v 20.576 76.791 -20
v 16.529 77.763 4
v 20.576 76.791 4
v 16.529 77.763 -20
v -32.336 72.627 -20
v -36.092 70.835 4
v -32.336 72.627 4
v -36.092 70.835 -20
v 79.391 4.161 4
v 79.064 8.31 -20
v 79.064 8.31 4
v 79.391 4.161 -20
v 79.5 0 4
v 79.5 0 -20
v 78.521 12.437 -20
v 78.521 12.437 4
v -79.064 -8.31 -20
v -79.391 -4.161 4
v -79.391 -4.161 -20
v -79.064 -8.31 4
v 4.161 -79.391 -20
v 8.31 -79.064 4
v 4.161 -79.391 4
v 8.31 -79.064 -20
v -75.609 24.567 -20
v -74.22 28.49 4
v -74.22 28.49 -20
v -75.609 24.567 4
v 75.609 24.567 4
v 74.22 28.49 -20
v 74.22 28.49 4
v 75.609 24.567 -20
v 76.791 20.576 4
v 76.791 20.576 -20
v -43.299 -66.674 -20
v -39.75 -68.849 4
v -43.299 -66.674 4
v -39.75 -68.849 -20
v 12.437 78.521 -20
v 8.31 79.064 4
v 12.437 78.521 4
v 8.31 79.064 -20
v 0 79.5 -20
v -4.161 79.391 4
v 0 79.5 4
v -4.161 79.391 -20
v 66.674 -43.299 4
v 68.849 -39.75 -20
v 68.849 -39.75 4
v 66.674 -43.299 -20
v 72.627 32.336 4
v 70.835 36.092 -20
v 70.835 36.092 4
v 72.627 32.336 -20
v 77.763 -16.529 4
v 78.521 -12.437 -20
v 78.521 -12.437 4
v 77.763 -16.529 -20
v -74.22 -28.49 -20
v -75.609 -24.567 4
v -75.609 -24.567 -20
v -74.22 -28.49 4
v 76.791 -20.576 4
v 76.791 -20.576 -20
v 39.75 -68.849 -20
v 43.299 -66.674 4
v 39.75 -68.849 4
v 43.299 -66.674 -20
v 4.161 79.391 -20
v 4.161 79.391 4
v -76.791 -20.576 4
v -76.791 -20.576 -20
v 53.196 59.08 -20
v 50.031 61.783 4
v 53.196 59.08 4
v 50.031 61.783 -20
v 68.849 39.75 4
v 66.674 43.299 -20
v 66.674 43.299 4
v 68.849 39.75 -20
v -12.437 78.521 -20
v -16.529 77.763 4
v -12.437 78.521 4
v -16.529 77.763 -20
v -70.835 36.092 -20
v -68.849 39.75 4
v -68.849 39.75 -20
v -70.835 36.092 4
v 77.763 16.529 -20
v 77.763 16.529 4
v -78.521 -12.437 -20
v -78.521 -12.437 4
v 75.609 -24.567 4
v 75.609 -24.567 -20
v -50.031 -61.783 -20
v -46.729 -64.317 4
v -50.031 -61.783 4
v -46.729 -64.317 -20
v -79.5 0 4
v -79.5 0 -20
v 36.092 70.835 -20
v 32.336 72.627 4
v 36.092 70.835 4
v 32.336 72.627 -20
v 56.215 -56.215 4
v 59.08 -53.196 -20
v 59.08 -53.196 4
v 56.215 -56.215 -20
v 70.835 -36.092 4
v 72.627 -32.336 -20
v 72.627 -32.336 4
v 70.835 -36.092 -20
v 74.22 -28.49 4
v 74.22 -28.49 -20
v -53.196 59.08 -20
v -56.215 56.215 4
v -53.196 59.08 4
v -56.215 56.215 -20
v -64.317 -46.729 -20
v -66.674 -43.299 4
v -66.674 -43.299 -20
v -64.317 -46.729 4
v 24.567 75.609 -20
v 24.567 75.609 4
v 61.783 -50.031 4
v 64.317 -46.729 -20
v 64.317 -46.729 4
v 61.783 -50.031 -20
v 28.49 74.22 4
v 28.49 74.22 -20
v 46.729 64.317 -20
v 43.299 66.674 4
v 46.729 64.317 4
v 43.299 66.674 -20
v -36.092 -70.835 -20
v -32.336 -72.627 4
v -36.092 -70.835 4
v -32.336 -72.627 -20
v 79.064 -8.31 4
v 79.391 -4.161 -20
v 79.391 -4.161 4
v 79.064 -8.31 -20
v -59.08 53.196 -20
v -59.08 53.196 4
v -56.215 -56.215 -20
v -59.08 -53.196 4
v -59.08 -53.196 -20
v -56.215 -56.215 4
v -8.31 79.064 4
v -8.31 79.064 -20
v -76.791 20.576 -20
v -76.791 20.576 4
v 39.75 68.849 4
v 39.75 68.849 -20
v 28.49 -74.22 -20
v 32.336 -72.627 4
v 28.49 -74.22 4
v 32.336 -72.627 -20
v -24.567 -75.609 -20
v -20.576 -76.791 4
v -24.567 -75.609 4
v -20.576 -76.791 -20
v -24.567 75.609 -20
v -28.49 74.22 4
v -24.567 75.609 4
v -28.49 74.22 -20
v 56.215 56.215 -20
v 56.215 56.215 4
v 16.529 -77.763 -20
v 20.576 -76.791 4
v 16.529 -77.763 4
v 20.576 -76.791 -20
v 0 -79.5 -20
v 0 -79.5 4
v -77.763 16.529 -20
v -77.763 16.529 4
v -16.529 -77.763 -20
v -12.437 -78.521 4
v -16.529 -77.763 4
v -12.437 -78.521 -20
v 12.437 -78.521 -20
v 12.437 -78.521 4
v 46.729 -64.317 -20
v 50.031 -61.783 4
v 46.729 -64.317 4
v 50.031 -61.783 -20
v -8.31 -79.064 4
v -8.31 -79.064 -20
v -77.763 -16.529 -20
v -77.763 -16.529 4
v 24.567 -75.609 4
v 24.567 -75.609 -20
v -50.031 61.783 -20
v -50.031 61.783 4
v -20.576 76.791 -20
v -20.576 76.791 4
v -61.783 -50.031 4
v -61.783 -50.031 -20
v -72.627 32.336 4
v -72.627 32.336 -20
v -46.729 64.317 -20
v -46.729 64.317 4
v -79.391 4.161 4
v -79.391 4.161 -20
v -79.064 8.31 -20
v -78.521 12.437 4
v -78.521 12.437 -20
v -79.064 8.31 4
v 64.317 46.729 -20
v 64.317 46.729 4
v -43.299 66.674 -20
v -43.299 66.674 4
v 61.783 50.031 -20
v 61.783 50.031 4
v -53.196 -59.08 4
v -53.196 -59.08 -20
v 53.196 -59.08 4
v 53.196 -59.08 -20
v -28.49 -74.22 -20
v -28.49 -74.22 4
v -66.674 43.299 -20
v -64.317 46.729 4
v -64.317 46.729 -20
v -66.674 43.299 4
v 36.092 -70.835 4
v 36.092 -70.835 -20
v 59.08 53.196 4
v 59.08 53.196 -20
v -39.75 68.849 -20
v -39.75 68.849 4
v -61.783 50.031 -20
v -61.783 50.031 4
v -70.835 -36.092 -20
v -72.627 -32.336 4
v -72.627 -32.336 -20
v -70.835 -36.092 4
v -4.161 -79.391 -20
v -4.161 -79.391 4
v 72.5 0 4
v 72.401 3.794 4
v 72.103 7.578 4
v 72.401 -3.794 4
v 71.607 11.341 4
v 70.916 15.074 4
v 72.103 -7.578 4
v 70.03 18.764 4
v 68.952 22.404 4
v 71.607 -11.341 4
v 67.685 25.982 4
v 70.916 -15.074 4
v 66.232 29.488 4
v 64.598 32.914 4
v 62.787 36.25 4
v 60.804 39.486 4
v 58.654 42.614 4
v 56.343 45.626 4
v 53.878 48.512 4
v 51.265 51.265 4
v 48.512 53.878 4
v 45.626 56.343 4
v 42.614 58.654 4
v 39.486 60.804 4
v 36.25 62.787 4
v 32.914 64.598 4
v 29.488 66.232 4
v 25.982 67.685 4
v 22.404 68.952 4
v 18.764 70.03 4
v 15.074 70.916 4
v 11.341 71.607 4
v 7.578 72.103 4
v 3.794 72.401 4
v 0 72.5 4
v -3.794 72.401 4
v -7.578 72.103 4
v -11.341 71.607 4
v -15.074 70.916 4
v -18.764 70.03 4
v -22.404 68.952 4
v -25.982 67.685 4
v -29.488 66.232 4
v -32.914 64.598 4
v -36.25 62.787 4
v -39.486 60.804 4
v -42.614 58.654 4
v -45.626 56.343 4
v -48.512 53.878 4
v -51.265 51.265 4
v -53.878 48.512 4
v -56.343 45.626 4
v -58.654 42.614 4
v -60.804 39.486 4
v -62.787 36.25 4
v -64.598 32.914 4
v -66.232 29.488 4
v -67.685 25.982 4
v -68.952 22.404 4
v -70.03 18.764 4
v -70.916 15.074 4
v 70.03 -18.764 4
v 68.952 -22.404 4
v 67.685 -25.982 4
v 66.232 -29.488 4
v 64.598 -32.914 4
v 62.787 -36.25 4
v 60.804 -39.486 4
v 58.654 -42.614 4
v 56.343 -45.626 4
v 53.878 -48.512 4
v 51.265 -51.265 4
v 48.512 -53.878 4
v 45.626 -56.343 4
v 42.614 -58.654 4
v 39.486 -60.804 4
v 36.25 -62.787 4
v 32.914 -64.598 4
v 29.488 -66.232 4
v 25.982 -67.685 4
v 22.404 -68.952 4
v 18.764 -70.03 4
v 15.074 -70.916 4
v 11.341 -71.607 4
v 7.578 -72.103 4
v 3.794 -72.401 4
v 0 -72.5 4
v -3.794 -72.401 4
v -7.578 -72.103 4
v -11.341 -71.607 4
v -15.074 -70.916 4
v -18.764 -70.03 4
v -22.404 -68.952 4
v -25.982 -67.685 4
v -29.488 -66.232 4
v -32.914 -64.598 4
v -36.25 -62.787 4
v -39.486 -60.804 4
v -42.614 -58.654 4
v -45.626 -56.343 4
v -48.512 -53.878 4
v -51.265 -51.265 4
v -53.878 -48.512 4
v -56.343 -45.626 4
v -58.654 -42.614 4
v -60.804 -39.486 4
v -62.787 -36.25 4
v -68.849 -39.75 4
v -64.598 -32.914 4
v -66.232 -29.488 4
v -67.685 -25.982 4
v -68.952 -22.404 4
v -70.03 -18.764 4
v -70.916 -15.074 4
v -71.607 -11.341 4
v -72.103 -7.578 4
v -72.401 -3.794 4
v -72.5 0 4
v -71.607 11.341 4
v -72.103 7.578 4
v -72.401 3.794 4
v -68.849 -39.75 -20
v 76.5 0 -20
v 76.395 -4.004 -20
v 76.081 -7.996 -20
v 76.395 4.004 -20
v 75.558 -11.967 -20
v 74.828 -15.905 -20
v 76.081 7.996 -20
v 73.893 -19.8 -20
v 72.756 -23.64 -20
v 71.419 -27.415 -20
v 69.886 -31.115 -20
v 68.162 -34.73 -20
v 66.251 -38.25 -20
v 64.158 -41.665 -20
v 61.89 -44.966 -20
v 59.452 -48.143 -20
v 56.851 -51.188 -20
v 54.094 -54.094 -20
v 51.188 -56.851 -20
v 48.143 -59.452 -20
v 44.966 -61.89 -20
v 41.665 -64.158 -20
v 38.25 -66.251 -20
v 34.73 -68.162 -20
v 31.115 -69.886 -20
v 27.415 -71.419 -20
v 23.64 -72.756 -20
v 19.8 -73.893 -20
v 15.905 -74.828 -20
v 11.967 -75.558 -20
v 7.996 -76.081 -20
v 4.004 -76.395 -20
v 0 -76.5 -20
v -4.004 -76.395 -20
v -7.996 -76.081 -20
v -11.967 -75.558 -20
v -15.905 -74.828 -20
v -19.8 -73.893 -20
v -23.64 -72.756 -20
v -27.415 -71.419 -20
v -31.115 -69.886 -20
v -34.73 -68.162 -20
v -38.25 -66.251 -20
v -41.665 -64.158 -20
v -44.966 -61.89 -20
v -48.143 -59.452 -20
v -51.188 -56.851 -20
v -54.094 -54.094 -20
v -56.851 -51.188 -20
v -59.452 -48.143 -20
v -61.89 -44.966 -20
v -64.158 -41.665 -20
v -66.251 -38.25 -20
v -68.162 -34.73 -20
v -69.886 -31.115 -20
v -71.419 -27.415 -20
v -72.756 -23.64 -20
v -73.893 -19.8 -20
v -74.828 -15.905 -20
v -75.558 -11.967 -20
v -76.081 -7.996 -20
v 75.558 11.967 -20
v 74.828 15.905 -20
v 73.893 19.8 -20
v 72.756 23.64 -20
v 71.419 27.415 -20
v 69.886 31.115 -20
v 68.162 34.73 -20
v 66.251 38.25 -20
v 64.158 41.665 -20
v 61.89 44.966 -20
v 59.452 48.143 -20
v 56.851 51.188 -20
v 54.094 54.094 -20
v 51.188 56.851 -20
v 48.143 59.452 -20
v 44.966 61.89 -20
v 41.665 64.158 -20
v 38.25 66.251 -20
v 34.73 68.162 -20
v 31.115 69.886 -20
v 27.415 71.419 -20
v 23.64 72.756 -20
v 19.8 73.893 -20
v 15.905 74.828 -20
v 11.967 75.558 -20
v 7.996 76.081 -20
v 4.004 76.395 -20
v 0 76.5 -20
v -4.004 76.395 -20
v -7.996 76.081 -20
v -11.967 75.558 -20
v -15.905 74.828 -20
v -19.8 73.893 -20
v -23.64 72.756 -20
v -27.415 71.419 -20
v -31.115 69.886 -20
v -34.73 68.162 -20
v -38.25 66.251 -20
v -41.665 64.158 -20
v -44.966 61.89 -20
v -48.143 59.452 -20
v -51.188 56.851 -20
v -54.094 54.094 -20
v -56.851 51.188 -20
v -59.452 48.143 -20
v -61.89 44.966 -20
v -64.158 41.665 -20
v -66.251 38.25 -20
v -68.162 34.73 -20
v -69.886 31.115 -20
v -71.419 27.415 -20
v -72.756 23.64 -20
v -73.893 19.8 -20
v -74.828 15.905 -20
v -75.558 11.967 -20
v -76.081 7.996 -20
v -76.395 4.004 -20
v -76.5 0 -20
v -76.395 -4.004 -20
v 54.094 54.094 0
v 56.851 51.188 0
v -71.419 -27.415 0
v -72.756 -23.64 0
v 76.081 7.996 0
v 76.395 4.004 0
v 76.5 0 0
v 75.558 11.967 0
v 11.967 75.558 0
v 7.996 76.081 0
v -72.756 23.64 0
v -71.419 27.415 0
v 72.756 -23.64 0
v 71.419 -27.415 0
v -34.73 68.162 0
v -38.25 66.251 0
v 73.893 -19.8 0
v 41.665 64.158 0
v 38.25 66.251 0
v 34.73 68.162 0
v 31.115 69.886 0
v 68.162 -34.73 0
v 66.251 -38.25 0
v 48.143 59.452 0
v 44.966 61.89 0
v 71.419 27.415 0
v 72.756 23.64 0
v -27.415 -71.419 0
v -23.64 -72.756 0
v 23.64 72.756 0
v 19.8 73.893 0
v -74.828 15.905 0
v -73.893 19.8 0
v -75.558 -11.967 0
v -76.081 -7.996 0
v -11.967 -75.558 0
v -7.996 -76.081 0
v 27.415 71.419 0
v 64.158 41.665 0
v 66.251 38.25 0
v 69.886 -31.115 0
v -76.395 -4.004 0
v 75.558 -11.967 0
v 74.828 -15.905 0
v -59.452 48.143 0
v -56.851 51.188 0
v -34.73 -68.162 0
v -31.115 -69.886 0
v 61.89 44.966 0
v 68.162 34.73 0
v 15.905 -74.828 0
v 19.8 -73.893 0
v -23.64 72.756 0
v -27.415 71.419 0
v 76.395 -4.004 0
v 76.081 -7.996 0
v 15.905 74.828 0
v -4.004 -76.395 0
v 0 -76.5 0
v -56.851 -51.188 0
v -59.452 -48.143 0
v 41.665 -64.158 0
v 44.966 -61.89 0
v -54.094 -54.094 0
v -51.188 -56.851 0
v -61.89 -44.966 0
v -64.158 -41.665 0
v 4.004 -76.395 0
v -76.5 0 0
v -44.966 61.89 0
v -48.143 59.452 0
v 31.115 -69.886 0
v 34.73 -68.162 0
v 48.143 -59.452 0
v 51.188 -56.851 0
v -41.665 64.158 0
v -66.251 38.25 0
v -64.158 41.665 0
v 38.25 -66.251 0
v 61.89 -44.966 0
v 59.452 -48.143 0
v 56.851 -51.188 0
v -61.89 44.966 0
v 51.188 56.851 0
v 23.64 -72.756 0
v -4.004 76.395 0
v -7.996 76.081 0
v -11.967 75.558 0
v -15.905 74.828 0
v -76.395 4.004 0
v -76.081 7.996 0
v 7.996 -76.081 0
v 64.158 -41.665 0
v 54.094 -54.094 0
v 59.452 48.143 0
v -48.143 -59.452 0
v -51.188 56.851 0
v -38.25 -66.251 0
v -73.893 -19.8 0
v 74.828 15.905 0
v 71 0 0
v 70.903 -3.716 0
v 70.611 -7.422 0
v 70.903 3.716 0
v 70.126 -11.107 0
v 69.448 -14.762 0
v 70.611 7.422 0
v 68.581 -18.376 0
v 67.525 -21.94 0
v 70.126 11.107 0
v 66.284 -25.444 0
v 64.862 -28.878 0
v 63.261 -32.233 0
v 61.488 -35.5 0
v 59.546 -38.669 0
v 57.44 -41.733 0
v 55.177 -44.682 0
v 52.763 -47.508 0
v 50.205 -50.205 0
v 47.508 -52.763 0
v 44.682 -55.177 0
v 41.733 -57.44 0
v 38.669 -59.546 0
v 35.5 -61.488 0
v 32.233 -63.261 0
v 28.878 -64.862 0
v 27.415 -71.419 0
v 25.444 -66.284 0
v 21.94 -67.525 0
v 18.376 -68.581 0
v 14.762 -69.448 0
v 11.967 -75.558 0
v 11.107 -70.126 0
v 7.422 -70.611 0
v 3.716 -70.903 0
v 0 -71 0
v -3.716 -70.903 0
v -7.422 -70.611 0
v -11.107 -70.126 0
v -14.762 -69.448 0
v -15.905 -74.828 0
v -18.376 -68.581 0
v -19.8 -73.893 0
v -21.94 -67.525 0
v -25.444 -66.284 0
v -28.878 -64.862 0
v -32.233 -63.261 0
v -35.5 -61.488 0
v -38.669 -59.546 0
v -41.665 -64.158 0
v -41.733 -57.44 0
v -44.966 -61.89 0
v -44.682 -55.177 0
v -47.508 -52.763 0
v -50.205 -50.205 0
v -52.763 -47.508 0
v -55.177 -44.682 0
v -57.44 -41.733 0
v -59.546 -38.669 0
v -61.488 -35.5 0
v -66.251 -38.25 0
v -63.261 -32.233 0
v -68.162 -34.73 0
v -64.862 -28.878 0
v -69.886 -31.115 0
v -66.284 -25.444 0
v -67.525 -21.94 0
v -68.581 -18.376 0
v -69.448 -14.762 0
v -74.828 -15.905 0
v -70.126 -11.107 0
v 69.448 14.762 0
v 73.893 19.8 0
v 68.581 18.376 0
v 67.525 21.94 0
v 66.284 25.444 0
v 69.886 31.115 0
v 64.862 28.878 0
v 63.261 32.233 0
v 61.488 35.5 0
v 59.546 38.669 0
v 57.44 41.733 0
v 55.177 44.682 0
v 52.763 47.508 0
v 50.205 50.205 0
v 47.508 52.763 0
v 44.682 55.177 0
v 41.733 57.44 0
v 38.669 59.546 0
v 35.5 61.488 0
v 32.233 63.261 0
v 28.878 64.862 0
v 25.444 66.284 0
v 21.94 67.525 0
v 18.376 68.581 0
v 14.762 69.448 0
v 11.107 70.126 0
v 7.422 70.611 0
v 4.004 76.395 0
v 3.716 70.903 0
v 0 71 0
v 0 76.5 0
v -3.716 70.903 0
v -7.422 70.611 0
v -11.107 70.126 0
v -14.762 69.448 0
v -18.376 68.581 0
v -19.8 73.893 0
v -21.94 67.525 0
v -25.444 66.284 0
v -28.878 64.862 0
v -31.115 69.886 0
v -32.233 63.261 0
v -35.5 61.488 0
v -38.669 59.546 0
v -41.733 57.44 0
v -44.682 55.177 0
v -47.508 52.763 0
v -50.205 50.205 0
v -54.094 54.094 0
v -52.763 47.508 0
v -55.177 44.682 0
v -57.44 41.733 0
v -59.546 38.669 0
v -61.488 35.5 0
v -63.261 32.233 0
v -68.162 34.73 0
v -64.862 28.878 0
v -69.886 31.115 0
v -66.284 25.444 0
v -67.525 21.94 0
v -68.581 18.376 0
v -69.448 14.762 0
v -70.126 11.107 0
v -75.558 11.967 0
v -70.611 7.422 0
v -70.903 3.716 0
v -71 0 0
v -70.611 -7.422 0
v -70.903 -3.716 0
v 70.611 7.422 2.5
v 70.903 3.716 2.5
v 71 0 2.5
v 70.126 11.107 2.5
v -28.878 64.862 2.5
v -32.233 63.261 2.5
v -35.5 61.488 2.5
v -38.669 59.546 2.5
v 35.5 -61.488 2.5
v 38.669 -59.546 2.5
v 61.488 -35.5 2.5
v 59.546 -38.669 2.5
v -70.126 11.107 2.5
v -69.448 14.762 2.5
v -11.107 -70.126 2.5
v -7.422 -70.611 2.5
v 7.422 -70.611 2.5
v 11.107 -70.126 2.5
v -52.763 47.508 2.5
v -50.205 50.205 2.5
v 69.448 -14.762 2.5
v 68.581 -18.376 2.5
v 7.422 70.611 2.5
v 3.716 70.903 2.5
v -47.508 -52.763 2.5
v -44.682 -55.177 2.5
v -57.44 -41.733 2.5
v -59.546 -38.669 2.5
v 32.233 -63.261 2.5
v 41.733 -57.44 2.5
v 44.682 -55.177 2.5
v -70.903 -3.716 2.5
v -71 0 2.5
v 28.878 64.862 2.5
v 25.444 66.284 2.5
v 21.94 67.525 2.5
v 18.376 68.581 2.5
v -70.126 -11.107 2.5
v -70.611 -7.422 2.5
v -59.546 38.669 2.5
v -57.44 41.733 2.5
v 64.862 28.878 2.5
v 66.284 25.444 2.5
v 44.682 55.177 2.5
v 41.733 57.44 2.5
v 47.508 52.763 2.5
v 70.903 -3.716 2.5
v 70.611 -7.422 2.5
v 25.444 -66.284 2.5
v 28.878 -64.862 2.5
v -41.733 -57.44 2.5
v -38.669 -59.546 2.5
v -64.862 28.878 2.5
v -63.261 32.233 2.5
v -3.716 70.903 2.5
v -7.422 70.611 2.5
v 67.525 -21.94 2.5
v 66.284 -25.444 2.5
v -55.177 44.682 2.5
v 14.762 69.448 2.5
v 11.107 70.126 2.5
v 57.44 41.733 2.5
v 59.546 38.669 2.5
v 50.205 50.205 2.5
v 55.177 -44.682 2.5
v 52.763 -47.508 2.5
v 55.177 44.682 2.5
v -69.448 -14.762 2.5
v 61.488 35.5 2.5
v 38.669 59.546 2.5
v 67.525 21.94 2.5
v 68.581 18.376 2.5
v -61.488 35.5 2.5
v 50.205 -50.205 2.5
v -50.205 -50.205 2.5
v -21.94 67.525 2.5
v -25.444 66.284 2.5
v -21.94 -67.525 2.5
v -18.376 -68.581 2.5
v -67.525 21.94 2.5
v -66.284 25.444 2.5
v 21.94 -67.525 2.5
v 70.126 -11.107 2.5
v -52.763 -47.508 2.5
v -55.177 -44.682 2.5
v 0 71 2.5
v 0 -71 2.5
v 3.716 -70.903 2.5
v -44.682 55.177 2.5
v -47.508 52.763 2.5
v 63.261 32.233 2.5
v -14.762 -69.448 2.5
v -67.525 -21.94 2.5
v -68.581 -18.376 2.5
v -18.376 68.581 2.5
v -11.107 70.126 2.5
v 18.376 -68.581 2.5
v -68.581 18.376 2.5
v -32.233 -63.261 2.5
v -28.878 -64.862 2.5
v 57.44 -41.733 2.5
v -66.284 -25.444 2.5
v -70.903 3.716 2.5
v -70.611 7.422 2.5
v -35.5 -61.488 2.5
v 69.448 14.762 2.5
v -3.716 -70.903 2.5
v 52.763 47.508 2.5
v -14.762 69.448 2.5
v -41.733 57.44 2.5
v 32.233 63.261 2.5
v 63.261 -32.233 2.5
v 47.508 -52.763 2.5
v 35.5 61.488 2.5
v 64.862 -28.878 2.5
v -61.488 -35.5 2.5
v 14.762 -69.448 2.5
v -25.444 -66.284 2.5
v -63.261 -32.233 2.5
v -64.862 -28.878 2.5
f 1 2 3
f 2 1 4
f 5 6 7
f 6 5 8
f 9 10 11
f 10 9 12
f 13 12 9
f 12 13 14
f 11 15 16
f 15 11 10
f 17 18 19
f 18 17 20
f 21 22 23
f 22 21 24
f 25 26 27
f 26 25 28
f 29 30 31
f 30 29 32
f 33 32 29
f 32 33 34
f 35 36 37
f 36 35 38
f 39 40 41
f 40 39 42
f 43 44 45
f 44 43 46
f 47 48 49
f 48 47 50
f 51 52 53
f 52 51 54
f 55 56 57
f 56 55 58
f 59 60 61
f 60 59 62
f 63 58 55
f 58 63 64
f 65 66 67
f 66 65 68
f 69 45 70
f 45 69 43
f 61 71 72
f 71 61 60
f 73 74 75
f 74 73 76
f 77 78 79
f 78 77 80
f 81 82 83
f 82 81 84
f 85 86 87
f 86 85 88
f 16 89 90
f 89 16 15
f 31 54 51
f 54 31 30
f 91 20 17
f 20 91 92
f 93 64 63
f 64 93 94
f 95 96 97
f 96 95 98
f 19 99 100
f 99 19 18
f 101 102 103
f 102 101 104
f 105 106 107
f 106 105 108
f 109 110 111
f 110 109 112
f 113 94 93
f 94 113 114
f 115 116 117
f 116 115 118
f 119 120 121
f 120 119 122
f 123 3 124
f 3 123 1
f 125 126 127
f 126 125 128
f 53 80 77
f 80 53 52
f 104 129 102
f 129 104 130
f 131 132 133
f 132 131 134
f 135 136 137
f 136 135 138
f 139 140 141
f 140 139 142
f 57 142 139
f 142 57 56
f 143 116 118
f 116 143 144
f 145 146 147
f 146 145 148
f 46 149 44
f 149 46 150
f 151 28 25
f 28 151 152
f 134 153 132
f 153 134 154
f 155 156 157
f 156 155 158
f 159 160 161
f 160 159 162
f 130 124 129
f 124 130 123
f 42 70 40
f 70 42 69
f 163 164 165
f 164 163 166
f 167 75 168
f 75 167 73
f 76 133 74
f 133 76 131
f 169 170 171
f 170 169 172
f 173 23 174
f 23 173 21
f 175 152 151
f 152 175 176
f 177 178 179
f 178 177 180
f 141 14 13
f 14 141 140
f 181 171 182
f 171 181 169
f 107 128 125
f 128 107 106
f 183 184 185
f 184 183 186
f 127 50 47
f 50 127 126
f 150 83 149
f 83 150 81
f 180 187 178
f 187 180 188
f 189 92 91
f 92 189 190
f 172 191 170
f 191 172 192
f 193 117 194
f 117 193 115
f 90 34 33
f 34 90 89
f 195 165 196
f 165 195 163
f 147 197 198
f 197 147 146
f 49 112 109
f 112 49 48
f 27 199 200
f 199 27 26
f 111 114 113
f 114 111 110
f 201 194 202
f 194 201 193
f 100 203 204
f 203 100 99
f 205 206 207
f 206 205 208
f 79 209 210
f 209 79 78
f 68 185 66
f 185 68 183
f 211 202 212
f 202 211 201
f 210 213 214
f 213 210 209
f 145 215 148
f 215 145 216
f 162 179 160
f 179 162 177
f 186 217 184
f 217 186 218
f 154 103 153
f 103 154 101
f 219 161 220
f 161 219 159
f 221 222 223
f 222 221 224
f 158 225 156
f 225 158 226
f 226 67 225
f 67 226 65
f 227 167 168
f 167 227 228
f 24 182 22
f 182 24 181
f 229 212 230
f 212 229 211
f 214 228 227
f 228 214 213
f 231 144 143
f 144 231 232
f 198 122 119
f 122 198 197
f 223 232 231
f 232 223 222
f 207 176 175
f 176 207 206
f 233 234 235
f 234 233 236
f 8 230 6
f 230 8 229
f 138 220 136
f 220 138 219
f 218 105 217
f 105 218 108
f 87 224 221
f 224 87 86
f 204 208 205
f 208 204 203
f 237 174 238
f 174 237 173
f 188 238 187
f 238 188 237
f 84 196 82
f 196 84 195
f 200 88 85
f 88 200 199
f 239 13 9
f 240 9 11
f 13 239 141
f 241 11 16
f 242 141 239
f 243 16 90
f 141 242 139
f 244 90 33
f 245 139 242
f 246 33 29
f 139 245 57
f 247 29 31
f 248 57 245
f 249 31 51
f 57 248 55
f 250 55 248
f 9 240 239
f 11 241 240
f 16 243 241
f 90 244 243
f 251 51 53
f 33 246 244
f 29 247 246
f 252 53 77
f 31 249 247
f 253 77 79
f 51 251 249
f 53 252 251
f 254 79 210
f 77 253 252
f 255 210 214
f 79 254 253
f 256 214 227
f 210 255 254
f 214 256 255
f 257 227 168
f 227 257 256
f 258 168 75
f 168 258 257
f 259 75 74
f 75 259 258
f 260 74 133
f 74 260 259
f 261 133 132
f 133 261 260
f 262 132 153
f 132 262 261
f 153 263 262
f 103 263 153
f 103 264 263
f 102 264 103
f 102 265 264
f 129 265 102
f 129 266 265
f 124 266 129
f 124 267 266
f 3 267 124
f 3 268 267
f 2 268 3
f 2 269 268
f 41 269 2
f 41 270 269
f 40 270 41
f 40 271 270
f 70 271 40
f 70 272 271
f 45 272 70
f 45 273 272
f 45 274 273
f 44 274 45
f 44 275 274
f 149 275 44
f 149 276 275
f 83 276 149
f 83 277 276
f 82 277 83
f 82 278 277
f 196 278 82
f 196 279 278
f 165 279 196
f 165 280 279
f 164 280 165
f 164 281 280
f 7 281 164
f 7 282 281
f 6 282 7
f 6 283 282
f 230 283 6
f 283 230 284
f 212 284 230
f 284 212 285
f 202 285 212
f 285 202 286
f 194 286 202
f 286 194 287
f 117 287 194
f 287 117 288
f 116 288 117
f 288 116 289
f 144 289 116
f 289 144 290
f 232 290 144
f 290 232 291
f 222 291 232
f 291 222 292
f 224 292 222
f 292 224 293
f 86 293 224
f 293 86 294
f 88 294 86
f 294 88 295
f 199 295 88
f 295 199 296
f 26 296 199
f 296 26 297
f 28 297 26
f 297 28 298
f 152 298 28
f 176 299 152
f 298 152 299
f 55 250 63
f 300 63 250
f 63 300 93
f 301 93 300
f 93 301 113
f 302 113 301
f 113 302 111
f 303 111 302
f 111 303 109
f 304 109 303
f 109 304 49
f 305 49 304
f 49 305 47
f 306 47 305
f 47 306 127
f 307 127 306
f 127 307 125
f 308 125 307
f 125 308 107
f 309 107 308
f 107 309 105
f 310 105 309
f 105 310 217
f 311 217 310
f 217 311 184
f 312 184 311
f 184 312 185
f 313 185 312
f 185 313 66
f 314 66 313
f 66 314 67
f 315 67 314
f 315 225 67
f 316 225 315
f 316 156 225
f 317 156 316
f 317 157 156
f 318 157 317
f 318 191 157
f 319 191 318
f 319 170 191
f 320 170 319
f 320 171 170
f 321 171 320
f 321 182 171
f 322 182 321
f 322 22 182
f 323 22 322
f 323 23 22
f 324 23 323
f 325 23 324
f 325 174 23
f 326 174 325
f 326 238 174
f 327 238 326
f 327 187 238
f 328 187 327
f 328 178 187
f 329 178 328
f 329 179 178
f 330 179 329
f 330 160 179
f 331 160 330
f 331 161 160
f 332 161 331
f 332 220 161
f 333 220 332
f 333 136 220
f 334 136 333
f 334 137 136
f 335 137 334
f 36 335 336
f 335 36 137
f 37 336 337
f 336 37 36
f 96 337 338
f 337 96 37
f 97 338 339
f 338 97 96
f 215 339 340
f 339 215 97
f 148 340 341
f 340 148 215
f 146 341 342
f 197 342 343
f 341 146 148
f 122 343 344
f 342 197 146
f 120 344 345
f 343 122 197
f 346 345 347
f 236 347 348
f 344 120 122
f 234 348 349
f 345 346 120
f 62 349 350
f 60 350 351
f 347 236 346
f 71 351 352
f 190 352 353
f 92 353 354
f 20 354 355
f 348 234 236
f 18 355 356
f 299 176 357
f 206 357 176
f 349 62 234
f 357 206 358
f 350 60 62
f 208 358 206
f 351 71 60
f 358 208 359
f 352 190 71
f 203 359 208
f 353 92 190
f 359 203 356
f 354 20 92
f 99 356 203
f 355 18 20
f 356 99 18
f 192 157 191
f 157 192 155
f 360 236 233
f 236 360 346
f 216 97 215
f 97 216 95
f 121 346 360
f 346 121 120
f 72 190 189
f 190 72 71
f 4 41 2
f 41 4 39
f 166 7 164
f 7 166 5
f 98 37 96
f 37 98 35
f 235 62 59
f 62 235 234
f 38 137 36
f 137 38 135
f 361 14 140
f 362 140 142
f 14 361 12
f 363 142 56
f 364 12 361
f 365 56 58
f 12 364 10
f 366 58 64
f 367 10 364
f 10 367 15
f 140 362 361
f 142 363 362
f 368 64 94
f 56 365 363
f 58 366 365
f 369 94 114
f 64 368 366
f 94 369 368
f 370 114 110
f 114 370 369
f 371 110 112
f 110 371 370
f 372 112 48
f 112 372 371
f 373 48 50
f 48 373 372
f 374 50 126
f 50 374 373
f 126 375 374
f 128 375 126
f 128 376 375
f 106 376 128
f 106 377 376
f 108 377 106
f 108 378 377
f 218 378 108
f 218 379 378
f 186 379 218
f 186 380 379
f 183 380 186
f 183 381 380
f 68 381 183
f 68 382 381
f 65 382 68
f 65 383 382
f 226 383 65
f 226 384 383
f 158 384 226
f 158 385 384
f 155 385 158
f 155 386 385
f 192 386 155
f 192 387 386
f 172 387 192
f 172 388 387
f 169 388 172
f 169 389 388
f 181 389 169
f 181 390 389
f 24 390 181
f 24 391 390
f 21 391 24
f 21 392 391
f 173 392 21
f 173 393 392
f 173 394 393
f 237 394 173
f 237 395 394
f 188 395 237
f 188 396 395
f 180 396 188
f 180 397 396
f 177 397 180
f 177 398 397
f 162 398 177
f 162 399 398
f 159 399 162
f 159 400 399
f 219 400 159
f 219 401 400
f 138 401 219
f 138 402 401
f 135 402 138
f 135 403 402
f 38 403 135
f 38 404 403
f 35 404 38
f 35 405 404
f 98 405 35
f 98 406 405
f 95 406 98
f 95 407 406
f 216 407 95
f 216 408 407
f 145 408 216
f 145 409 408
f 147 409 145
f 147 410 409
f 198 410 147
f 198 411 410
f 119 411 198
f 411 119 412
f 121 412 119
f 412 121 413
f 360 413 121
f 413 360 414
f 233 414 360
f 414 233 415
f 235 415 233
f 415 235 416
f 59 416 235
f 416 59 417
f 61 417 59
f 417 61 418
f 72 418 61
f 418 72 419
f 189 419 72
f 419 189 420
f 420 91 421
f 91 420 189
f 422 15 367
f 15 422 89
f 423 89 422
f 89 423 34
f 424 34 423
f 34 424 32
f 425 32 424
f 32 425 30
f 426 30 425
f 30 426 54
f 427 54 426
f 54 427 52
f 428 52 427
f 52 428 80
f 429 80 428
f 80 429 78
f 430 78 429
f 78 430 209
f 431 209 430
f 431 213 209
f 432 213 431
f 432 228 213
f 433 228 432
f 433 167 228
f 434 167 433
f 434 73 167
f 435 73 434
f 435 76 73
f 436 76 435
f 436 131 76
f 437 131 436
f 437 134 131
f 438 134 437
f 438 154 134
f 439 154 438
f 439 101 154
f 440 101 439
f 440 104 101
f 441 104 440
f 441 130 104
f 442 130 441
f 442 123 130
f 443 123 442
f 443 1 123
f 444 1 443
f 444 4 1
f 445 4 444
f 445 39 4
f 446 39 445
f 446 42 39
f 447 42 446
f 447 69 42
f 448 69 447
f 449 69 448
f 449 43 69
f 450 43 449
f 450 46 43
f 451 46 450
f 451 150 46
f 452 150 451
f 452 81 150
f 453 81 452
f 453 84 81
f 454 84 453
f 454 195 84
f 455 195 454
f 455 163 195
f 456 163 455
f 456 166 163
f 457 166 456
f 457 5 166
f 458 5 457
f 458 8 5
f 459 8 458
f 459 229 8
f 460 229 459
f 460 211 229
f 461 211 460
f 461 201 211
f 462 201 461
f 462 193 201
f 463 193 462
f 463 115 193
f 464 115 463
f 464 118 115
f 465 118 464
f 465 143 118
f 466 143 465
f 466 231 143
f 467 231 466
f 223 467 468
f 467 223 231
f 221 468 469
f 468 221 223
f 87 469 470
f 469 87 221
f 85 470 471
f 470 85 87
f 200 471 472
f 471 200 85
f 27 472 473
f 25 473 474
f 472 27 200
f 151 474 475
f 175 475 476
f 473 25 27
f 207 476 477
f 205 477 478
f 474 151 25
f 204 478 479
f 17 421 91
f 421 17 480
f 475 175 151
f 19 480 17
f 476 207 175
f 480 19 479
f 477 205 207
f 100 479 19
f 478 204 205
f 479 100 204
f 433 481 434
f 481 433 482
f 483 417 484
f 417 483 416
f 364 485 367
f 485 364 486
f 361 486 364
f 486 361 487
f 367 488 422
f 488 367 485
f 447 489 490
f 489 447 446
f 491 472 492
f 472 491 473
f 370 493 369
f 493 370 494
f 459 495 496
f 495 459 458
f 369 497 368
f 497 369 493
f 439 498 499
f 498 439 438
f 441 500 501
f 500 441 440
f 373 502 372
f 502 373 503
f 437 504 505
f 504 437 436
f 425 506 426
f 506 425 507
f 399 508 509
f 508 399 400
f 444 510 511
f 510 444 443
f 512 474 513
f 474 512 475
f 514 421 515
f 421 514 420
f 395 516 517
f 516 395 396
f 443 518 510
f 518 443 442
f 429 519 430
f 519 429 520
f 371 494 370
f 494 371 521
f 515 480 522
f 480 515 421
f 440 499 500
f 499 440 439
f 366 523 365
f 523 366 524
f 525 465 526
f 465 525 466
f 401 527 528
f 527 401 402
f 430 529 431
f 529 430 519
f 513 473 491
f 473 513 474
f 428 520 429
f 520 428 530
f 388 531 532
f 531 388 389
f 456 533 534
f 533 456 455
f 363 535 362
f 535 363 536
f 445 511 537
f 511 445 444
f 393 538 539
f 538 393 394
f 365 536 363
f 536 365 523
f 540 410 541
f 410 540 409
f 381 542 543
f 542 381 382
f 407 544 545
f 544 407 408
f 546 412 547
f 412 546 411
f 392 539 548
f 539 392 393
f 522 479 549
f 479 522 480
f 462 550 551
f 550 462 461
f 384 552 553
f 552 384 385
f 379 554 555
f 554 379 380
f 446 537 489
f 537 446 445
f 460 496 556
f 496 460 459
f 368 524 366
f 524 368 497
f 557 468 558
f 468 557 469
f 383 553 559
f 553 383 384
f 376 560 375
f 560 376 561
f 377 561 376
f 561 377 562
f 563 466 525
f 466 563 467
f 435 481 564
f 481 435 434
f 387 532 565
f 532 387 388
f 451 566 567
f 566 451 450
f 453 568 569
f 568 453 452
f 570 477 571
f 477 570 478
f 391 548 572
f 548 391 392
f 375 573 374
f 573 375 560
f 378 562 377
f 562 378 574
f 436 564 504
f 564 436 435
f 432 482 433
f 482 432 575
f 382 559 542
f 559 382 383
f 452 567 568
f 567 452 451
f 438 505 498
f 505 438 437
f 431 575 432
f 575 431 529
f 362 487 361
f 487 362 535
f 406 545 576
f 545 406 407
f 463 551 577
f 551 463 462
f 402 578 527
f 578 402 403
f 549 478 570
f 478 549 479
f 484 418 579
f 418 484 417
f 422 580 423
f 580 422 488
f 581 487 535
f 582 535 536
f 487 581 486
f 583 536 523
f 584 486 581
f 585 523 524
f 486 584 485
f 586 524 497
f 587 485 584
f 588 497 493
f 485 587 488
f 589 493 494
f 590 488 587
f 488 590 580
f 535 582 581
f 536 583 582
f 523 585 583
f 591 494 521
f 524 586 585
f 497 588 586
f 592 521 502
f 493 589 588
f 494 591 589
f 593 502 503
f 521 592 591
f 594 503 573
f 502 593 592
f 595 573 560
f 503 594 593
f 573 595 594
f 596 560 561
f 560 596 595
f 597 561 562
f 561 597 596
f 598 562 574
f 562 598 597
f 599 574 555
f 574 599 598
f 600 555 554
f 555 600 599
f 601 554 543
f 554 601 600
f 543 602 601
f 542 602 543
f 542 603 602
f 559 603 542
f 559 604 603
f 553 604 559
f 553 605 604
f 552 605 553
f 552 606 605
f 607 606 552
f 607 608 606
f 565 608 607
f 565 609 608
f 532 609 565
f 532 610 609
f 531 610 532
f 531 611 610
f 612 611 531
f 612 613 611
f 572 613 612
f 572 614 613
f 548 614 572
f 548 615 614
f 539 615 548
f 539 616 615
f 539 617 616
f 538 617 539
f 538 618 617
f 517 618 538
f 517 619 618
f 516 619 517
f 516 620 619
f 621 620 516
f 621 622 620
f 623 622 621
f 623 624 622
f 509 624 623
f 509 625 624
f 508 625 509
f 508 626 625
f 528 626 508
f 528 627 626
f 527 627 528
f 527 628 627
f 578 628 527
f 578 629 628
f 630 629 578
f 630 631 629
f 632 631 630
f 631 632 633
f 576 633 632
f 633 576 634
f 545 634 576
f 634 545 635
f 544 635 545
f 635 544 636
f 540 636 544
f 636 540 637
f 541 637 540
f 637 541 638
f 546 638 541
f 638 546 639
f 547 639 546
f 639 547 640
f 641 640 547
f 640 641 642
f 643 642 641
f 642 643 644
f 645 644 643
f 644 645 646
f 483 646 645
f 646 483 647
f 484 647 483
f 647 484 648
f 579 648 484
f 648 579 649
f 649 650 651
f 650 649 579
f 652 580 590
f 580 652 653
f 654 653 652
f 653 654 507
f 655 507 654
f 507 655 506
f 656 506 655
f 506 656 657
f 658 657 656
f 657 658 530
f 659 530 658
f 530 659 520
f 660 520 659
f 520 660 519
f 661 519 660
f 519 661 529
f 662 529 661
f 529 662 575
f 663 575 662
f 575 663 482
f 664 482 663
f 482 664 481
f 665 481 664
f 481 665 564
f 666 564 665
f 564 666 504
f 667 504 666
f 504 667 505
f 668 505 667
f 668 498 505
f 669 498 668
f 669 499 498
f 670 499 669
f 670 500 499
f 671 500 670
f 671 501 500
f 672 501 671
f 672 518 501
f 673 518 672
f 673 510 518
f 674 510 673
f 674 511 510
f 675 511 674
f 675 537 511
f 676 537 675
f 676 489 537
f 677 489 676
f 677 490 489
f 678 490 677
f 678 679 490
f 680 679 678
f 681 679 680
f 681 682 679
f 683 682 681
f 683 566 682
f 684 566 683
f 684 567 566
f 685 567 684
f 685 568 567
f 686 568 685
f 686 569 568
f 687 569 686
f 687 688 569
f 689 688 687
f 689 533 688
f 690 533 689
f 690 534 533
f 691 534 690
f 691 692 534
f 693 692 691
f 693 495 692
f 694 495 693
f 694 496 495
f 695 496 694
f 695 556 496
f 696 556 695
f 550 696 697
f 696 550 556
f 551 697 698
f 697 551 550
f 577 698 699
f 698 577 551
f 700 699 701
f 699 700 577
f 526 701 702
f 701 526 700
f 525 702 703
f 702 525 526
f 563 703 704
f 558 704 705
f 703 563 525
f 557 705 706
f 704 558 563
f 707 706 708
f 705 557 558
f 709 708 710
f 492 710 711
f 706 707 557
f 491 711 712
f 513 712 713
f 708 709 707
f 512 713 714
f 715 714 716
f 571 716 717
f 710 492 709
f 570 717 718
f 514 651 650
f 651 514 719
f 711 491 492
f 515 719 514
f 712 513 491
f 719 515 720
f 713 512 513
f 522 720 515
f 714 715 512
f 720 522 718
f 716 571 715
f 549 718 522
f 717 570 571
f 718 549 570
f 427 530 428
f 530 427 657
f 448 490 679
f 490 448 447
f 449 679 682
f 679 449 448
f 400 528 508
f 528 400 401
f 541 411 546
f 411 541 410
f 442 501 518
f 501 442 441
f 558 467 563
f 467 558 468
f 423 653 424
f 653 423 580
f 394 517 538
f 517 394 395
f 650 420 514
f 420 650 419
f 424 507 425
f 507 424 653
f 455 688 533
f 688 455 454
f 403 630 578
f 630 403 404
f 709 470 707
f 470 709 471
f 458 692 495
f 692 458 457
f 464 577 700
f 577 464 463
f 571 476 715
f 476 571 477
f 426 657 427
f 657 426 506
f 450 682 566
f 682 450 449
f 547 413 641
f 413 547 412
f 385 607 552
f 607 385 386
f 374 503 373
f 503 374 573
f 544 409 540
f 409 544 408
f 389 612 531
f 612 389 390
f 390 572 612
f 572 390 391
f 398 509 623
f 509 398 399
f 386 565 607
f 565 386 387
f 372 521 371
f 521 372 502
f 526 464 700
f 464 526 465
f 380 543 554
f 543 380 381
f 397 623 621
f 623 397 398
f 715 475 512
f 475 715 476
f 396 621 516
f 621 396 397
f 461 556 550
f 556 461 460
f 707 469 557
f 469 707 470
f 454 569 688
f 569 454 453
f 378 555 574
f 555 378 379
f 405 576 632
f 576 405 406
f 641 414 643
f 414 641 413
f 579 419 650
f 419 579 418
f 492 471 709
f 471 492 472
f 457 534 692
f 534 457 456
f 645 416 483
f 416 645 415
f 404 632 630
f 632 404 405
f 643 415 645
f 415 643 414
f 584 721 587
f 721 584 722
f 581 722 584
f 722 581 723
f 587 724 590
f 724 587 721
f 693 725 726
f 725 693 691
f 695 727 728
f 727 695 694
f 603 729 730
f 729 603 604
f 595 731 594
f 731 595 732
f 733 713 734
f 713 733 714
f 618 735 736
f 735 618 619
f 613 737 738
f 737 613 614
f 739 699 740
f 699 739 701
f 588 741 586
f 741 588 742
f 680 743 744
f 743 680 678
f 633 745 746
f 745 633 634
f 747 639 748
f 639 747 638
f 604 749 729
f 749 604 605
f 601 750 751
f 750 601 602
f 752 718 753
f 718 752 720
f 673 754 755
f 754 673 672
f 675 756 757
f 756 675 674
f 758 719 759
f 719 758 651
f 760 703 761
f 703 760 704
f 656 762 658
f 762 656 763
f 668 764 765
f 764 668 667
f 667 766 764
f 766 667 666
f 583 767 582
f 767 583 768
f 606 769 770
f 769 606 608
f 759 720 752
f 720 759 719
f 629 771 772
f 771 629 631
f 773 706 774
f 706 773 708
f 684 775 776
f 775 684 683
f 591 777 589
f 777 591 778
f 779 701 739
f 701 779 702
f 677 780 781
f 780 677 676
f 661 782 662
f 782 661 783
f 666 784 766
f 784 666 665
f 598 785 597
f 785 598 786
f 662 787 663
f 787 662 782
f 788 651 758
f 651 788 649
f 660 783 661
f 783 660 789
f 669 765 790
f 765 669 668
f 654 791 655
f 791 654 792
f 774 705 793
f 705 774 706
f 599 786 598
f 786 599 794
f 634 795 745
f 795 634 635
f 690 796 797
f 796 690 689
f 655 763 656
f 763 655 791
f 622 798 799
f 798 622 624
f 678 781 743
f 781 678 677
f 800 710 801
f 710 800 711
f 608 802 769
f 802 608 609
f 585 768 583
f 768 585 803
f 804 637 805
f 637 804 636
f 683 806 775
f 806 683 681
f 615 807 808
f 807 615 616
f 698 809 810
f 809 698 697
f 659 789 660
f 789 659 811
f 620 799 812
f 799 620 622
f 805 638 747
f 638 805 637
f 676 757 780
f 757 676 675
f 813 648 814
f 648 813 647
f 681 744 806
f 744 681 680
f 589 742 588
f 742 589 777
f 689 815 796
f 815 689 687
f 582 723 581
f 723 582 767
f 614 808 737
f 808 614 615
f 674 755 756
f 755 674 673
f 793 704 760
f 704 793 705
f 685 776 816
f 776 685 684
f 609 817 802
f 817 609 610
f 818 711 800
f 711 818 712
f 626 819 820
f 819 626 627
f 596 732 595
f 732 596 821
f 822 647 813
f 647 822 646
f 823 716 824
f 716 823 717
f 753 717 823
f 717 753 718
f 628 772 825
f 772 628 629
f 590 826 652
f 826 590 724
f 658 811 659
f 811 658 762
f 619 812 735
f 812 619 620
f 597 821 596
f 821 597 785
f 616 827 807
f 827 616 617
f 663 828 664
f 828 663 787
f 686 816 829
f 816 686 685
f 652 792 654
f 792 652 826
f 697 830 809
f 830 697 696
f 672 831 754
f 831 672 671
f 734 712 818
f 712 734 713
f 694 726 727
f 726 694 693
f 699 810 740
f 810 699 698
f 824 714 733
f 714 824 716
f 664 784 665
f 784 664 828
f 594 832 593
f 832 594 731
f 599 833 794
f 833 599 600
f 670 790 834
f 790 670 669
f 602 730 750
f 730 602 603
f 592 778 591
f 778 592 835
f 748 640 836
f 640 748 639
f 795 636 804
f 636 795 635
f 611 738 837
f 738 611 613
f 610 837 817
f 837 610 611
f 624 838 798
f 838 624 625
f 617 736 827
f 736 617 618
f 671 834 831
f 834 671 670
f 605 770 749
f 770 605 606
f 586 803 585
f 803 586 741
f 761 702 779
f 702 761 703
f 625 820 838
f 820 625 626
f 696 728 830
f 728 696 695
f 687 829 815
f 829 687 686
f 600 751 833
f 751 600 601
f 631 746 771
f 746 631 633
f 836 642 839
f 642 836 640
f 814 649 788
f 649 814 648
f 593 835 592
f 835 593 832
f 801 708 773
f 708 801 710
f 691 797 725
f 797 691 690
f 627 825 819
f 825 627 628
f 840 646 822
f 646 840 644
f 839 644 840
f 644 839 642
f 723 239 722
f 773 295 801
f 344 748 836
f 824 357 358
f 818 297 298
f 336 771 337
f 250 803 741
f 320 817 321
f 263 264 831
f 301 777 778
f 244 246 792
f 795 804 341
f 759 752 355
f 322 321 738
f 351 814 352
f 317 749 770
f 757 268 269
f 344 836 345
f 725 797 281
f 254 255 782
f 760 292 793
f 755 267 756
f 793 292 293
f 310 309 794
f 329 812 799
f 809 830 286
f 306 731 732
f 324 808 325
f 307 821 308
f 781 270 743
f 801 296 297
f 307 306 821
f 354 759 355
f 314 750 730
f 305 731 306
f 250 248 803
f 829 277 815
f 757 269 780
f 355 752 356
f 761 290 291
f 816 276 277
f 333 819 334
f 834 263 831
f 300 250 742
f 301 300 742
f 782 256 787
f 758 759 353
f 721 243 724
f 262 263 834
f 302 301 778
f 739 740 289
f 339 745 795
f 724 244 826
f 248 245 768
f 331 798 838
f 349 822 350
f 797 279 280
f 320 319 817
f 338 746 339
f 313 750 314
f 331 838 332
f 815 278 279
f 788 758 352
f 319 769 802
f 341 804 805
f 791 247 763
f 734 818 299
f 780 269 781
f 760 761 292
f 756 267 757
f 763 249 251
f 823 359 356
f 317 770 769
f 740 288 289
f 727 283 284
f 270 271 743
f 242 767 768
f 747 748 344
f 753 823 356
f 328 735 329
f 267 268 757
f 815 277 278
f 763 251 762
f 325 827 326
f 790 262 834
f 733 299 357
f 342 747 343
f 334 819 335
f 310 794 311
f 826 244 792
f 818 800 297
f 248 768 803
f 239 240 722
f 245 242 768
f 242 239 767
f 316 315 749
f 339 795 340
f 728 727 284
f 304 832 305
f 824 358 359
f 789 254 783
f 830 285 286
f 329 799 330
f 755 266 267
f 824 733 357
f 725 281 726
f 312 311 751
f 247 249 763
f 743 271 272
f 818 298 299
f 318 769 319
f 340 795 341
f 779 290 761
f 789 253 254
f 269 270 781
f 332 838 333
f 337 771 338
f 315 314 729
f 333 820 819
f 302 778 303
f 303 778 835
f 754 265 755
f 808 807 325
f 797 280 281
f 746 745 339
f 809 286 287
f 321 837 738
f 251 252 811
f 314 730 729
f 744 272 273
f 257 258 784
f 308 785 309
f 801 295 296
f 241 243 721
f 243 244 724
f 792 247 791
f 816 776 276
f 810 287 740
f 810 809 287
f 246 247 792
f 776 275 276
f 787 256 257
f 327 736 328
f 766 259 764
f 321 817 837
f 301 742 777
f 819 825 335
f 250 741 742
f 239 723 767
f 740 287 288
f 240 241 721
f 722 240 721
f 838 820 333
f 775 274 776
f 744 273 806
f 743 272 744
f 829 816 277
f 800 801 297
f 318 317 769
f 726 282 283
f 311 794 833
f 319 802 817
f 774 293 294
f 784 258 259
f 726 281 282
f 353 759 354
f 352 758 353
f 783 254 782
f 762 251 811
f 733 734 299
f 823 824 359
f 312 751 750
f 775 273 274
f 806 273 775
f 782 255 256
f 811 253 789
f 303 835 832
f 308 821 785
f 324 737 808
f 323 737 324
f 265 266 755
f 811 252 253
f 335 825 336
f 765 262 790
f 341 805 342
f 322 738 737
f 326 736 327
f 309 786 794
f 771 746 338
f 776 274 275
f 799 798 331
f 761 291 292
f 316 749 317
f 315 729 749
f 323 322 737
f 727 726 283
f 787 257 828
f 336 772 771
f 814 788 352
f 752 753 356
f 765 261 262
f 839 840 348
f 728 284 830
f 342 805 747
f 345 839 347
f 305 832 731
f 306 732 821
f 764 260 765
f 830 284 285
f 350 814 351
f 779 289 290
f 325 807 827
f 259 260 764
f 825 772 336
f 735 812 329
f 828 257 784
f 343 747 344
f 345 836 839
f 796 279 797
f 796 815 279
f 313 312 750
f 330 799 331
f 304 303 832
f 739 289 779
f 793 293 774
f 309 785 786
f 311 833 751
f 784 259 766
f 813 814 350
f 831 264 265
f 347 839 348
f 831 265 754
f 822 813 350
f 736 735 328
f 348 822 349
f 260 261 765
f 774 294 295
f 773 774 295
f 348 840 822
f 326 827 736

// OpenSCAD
// =======================
// PARAMETRI
// =======================
tube_diameter = 152;

// Tolleranze
tolerance = 0.5;          // per infilarsi sul tubo
filter_clearance = 0;   // spazio extra per il filtro - EDIT: TOLTO

// Spessori
wall_thickness = 3;
top_thickness  = 4;
lip_height     = 20;

// Foro centrale
hole_diameter = 142; // <-- MODIFICA QUI (più piccolo del tubo)

// Smusso interno per non tagliare il filtro
chamfer = 1.5;

$fn = 120;

// =======================
// CALCOLI
// =======================
inner_d = tube_diameter + 2*tolerance + filter_clearance;
outer_d = inner_d + 2*wall_thickness;

// =======================
// MODELLO
// =======================
difference() {
    union() {
        // top
        cylinder(d=outer_d, h=top_thickness);

        // parete esterna
        translate([0,0,-lip_height])
            cylinder(d=outer_d, h=lip_height);
    }

    // spazio interno (più largo per il filtro)
    translate([0,0,-lip_height])
        cylinder(d=inner_d, h=lip_height);

    // foro centrale
    translate([0,0,-1])
        cylinder(d=hole_diameter, h=top_thickness + 2);

    // piccolo smusso interno (anti-taglio filtro)
    translate([0,0,top_thickness - chamfer])
        cylinder(d1=hole_diameter, d2=hole_diameter + 3, h=chamfer);
}
